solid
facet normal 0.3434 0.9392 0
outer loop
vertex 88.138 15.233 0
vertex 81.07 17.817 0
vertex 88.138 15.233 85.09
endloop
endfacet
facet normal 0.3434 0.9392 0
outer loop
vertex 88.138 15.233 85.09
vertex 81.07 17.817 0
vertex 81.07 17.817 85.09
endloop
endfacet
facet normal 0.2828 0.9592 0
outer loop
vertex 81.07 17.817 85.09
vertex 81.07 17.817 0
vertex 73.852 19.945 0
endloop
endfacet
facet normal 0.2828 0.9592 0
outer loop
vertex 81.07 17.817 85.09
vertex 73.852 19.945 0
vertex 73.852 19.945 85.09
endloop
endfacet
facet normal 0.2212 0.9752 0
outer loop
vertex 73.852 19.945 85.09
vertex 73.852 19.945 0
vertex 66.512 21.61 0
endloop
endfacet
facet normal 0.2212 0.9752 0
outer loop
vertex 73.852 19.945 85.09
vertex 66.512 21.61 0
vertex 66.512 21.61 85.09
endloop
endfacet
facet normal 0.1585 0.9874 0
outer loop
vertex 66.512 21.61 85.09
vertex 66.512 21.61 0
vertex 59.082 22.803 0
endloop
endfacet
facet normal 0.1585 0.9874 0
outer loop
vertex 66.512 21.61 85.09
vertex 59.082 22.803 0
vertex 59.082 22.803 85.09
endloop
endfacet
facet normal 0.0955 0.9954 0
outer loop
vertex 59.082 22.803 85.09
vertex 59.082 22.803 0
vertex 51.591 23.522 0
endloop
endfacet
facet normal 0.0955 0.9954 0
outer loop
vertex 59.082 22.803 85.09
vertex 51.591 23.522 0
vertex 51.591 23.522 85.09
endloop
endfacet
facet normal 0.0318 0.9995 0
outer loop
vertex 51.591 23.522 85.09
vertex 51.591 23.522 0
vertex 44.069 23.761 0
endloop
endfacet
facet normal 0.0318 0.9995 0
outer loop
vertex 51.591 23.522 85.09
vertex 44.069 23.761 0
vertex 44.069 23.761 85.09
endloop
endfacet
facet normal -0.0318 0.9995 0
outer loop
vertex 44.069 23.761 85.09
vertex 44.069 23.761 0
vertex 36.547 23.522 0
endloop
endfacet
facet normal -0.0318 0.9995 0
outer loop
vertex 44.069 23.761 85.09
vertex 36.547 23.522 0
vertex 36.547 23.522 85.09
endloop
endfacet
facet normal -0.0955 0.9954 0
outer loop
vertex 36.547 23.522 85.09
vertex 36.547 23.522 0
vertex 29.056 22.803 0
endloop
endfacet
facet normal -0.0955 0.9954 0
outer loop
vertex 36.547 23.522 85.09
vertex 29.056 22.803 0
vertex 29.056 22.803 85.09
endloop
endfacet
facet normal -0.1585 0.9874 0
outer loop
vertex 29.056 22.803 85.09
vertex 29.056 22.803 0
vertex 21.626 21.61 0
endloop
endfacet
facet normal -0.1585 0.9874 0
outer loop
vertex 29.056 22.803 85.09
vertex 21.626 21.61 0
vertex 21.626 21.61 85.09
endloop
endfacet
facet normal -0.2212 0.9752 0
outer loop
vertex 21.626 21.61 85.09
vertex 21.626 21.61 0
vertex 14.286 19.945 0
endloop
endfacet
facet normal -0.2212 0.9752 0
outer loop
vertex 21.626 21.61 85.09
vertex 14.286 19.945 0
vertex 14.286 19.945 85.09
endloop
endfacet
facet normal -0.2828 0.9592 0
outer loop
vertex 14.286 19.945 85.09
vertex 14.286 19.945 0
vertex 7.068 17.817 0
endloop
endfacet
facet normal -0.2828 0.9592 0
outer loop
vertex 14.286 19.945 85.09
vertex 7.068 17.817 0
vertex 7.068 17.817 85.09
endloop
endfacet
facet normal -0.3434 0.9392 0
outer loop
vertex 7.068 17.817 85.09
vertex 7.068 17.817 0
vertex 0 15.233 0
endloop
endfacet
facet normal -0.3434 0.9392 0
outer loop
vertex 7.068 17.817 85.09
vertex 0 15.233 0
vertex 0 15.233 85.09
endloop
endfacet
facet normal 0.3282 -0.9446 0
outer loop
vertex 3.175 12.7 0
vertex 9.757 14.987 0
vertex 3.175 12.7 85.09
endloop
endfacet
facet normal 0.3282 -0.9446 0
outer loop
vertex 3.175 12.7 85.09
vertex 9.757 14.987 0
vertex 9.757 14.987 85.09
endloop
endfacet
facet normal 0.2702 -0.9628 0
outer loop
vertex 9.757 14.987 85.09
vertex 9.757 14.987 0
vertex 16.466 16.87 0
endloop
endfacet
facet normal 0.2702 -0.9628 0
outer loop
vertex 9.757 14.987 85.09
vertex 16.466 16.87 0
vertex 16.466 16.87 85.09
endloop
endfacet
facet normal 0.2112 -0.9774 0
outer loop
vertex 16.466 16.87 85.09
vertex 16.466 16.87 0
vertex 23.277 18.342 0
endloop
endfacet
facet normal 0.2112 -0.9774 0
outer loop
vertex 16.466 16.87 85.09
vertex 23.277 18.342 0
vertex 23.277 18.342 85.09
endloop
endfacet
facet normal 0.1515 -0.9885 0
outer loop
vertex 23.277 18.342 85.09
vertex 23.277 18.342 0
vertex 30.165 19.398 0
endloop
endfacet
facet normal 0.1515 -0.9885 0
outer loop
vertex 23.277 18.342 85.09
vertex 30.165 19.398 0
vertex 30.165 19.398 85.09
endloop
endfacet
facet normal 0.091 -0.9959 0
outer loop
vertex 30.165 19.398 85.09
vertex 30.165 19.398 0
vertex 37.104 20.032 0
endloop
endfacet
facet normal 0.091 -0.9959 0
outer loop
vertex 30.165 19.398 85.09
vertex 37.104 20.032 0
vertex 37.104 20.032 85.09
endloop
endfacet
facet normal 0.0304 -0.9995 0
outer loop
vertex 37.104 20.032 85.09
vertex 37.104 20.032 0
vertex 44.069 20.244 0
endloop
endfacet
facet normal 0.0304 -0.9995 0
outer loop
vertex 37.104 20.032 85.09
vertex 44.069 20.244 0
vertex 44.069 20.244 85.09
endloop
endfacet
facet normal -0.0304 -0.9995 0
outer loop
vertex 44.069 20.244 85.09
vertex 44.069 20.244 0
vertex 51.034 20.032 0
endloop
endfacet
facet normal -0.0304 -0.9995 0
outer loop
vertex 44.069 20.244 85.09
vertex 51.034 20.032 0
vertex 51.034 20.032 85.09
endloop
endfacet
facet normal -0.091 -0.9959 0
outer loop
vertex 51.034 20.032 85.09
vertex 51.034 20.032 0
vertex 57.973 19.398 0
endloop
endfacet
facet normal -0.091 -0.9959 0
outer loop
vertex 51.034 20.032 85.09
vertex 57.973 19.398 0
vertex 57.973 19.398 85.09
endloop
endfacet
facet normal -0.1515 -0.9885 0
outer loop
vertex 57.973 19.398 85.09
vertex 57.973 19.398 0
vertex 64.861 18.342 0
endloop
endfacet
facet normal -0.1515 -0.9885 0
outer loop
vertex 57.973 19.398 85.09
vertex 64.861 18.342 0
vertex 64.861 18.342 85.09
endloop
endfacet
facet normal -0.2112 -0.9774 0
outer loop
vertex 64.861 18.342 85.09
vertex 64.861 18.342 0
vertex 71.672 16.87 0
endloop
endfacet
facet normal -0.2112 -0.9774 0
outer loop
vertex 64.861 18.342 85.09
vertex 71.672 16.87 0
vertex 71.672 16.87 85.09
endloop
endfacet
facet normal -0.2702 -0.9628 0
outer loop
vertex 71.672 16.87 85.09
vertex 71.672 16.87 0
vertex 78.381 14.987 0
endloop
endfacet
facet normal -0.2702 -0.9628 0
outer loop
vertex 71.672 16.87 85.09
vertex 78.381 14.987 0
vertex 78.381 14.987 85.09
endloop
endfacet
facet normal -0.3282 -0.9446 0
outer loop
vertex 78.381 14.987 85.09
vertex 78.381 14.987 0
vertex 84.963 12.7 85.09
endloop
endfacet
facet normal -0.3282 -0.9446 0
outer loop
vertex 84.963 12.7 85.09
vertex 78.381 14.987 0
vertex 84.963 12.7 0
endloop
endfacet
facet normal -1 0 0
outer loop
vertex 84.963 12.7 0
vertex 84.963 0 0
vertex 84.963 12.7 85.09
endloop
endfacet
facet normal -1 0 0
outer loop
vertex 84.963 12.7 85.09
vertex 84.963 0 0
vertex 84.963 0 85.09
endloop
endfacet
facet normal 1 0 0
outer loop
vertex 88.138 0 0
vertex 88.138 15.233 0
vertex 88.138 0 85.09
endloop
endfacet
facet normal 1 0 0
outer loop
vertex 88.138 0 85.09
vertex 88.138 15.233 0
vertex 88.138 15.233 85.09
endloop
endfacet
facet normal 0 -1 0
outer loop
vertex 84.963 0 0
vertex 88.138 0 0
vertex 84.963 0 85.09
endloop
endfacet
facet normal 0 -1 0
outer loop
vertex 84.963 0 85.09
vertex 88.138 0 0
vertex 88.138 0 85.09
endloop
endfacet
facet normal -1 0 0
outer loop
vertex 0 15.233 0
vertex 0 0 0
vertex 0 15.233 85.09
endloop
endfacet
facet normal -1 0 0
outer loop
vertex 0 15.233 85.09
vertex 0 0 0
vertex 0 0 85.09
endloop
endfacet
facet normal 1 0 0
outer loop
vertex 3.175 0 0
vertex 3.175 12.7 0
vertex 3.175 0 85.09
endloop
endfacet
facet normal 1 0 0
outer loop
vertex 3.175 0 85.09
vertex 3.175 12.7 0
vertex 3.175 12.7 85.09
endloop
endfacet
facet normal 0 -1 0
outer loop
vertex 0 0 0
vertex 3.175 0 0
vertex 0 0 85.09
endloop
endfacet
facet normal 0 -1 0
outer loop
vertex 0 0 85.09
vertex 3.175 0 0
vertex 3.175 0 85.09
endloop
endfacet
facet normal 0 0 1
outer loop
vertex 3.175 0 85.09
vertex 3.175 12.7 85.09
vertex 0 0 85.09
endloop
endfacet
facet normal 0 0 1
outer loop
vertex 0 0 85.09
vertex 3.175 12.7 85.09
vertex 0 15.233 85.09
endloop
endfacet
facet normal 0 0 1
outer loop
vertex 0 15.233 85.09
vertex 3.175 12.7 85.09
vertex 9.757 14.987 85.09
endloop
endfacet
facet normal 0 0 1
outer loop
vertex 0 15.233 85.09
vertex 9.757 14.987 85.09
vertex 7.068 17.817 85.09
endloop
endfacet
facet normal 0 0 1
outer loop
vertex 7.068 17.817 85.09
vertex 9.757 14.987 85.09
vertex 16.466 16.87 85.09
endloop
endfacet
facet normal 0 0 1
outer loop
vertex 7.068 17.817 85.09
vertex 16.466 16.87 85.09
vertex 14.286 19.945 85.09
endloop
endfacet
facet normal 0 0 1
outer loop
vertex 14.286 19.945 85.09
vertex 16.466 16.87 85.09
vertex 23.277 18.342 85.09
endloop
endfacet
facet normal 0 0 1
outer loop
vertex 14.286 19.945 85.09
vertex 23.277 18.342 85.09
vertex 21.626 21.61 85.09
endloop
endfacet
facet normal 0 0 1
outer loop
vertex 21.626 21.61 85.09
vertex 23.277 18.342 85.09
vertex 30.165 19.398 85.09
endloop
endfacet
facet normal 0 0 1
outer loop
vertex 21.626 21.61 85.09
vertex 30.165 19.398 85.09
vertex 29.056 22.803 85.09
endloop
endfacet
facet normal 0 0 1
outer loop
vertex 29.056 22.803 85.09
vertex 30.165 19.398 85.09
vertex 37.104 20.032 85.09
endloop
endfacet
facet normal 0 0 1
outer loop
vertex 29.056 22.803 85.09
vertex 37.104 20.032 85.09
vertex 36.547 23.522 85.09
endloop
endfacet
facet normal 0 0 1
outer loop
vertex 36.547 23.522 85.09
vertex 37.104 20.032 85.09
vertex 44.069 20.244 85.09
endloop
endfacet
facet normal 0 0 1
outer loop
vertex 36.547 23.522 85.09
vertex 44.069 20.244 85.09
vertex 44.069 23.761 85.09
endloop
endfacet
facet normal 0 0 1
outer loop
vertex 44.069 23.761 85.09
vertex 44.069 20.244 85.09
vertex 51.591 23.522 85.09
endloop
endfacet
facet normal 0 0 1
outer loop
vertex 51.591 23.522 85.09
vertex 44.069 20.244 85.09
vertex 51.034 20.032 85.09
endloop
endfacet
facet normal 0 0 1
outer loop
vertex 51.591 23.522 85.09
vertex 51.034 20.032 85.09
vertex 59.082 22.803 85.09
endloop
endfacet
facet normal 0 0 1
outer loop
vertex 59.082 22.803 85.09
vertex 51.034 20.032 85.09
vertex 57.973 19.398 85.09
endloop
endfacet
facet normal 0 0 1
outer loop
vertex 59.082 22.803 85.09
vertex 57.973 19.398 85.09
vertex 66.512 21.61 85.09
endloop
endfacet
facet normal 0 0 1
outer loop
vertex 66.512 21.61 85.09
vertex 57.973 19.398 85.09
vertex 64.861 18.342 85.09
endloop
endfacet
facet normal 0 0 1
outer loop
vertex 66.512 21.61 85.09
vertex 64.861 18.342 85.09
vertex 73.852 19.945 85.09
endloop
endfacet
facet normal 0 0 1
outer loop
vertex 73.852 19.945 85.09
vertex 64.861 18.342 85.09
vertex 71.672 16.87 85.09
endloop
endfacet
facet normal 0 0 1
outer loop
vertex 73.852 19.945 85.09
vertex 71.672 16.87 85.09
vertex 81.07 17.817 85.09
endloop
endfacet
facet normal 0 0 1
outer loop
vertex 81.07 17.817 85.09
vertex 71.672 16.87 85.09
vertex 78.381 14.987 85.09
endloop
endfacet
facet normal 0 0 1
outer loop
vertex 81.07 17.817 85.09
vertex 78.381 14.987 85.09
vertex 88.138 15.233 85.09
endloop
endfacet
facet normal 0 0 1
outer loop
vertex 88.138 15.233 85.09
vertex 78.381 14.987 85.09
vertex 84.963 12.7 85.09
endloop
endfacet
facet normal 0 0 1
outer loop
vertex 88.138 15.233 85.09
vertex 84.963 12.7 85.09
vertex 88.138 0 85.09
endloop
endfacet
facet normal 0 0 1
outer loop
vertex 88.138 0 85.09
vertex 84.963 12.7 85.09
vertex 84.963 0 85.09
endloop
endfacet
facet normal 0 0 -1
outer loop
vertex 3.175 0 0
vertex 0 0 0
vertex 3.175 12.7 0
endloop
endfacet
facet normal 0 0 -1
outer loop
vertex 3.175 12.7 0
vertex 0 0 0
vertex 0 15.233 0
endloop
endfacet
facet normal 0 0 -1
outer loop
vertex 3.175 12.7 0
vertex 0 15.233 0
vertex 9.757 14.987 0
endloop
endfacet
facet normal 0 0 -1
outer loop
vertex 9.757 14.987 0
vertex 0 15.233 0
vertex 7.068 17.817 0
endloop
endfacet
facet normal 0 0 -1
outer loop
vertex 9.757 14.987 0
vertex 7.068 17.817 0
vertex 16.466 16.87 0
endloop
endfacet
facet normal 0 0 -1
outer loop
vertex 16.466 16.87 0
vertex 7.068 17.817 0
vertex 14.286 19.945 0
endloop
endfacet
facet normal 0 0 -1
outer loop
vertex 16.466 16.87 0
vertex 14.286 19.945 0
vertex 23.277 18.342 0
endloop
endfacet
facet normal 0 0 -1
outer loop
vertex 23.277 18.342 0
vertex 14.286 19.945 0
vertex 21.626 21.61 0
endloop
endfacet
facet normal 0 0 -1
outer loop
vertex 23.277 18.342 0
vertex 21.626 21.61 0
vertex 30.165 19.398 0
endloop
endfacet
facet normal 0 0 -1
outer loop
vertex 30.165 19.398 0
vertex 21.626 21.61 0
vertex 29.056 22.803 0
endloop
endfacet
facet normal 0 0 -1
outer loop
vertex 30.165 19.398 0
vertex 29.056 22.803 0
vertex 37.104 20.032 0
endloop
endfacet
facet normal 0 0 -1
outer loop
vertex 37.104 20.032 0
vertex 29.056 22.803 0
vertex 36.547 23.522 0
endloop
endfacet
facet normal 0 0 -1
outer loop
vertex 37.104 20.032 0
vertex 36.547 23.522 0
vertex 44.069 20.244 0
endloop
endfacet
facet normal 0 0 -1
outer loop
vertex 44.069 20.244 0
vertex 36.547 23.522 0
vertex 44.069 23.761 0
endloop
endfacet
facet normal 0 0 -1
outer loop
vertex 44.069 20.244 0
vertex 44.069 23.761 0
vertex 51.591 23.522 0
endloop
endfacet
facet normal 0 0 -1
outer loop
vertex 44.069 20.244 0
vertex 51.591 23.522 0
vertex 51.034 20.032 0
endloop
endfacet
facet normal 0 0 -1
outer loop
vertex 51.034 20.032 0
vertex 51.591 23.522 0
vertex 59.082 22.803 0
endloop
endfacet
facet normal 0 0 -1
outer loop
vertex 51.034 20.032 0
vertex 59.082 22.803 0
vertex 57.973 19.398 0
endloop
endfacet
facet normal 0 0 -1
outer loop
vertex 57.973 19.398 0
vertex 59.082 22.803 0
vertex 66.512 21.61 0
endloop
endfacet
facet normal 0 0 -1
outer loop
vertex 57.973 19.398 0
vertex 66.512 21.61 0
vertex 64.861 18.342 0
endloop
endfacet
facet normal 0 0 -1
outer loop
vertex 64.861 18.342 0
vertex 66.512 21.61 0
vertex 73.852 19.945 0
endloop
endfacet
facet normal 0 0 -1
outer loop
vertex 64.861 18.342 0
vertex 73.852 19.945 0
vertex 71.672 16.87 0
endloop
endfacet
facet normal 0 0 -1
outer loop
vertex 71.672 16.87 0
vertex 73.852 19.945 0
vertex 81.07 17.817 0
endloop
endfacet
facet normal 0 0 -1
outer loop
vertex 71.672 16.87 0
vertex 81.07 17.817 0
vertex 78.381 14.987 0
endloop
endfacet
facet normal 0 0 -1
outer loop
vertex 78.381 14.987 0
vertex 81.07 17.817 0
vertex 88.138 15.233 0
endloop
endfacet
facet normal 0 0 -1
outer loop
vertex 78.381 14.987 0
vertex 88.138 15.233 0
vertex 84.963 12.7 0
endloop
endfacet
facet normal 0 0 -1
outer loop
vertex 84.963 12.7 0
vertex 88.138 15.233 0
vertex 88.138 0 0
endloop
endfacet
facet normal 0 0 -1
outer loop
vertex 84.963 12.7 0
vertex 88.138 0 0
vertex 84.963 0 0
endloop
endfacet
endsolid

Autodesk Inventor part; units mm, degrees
ref_plane "YZ Plane" through (0, 0, 0) normal (1, 0, 0) x (0, 1, 0)
ref_plane "XZ Plane" through (0, 0, 0) normal (0, 1, 0) x (-1, 0, 0)
ref_plane "XY Plane" through (0, 0, 0) normal (0, 0, 1) x (1, 0, 0)
sketch "Sketch1" plane through (0, 0, 0) normal (0, 0, 1) x (1, 0, 0)
  line L0 (0, 0) -> (3.175, 0)
  line L1 (3.175, 0) -> (3.175, 12.7)
  line L2 (3.175, 12.7) -> (0, 12.7)
  line L3 (0, 12.7) -> (0, 0)
  line L4 (84.963, 0) -> (88.138, 0)
  line L5 (88.138, 0) -> (88.138, 12.7)
  line L6 (88.138, 12.7) -> (84.963, 12.7)
  line L7 (84.963, 12.7) -> (84.963, 0)
  arc A0 (84.963, 12.7) -> (3.175, 12.7) centre (44.069, -94.3642) ccw
  line L8 (0, 12.7) -> (0, 15.2331)
  line L9 (88.138, 12.7) -> (88.138, 15.2331)
  arc A1 (88.138, 15.2331) -> (0, 15.2331) centre (44.069, -94.3642) ccw
  dimension "d0" = 3.175
  dimension "d1" = 12.7
  dimension "d2" = 81.788
  dimension "d3" = 3.175
  dimension "d4" = 12.7
  dimension "d5" = 2.5331
  dimension "d6" = 2.5331
extrude "Extrusion1" add sketch "Sketch1" along normal blind 85.09
equation "\"d3\" = d0"
equation "\"d4\" = d1"
equation "\"d6\" = d5"
properties part number "Canopy"
